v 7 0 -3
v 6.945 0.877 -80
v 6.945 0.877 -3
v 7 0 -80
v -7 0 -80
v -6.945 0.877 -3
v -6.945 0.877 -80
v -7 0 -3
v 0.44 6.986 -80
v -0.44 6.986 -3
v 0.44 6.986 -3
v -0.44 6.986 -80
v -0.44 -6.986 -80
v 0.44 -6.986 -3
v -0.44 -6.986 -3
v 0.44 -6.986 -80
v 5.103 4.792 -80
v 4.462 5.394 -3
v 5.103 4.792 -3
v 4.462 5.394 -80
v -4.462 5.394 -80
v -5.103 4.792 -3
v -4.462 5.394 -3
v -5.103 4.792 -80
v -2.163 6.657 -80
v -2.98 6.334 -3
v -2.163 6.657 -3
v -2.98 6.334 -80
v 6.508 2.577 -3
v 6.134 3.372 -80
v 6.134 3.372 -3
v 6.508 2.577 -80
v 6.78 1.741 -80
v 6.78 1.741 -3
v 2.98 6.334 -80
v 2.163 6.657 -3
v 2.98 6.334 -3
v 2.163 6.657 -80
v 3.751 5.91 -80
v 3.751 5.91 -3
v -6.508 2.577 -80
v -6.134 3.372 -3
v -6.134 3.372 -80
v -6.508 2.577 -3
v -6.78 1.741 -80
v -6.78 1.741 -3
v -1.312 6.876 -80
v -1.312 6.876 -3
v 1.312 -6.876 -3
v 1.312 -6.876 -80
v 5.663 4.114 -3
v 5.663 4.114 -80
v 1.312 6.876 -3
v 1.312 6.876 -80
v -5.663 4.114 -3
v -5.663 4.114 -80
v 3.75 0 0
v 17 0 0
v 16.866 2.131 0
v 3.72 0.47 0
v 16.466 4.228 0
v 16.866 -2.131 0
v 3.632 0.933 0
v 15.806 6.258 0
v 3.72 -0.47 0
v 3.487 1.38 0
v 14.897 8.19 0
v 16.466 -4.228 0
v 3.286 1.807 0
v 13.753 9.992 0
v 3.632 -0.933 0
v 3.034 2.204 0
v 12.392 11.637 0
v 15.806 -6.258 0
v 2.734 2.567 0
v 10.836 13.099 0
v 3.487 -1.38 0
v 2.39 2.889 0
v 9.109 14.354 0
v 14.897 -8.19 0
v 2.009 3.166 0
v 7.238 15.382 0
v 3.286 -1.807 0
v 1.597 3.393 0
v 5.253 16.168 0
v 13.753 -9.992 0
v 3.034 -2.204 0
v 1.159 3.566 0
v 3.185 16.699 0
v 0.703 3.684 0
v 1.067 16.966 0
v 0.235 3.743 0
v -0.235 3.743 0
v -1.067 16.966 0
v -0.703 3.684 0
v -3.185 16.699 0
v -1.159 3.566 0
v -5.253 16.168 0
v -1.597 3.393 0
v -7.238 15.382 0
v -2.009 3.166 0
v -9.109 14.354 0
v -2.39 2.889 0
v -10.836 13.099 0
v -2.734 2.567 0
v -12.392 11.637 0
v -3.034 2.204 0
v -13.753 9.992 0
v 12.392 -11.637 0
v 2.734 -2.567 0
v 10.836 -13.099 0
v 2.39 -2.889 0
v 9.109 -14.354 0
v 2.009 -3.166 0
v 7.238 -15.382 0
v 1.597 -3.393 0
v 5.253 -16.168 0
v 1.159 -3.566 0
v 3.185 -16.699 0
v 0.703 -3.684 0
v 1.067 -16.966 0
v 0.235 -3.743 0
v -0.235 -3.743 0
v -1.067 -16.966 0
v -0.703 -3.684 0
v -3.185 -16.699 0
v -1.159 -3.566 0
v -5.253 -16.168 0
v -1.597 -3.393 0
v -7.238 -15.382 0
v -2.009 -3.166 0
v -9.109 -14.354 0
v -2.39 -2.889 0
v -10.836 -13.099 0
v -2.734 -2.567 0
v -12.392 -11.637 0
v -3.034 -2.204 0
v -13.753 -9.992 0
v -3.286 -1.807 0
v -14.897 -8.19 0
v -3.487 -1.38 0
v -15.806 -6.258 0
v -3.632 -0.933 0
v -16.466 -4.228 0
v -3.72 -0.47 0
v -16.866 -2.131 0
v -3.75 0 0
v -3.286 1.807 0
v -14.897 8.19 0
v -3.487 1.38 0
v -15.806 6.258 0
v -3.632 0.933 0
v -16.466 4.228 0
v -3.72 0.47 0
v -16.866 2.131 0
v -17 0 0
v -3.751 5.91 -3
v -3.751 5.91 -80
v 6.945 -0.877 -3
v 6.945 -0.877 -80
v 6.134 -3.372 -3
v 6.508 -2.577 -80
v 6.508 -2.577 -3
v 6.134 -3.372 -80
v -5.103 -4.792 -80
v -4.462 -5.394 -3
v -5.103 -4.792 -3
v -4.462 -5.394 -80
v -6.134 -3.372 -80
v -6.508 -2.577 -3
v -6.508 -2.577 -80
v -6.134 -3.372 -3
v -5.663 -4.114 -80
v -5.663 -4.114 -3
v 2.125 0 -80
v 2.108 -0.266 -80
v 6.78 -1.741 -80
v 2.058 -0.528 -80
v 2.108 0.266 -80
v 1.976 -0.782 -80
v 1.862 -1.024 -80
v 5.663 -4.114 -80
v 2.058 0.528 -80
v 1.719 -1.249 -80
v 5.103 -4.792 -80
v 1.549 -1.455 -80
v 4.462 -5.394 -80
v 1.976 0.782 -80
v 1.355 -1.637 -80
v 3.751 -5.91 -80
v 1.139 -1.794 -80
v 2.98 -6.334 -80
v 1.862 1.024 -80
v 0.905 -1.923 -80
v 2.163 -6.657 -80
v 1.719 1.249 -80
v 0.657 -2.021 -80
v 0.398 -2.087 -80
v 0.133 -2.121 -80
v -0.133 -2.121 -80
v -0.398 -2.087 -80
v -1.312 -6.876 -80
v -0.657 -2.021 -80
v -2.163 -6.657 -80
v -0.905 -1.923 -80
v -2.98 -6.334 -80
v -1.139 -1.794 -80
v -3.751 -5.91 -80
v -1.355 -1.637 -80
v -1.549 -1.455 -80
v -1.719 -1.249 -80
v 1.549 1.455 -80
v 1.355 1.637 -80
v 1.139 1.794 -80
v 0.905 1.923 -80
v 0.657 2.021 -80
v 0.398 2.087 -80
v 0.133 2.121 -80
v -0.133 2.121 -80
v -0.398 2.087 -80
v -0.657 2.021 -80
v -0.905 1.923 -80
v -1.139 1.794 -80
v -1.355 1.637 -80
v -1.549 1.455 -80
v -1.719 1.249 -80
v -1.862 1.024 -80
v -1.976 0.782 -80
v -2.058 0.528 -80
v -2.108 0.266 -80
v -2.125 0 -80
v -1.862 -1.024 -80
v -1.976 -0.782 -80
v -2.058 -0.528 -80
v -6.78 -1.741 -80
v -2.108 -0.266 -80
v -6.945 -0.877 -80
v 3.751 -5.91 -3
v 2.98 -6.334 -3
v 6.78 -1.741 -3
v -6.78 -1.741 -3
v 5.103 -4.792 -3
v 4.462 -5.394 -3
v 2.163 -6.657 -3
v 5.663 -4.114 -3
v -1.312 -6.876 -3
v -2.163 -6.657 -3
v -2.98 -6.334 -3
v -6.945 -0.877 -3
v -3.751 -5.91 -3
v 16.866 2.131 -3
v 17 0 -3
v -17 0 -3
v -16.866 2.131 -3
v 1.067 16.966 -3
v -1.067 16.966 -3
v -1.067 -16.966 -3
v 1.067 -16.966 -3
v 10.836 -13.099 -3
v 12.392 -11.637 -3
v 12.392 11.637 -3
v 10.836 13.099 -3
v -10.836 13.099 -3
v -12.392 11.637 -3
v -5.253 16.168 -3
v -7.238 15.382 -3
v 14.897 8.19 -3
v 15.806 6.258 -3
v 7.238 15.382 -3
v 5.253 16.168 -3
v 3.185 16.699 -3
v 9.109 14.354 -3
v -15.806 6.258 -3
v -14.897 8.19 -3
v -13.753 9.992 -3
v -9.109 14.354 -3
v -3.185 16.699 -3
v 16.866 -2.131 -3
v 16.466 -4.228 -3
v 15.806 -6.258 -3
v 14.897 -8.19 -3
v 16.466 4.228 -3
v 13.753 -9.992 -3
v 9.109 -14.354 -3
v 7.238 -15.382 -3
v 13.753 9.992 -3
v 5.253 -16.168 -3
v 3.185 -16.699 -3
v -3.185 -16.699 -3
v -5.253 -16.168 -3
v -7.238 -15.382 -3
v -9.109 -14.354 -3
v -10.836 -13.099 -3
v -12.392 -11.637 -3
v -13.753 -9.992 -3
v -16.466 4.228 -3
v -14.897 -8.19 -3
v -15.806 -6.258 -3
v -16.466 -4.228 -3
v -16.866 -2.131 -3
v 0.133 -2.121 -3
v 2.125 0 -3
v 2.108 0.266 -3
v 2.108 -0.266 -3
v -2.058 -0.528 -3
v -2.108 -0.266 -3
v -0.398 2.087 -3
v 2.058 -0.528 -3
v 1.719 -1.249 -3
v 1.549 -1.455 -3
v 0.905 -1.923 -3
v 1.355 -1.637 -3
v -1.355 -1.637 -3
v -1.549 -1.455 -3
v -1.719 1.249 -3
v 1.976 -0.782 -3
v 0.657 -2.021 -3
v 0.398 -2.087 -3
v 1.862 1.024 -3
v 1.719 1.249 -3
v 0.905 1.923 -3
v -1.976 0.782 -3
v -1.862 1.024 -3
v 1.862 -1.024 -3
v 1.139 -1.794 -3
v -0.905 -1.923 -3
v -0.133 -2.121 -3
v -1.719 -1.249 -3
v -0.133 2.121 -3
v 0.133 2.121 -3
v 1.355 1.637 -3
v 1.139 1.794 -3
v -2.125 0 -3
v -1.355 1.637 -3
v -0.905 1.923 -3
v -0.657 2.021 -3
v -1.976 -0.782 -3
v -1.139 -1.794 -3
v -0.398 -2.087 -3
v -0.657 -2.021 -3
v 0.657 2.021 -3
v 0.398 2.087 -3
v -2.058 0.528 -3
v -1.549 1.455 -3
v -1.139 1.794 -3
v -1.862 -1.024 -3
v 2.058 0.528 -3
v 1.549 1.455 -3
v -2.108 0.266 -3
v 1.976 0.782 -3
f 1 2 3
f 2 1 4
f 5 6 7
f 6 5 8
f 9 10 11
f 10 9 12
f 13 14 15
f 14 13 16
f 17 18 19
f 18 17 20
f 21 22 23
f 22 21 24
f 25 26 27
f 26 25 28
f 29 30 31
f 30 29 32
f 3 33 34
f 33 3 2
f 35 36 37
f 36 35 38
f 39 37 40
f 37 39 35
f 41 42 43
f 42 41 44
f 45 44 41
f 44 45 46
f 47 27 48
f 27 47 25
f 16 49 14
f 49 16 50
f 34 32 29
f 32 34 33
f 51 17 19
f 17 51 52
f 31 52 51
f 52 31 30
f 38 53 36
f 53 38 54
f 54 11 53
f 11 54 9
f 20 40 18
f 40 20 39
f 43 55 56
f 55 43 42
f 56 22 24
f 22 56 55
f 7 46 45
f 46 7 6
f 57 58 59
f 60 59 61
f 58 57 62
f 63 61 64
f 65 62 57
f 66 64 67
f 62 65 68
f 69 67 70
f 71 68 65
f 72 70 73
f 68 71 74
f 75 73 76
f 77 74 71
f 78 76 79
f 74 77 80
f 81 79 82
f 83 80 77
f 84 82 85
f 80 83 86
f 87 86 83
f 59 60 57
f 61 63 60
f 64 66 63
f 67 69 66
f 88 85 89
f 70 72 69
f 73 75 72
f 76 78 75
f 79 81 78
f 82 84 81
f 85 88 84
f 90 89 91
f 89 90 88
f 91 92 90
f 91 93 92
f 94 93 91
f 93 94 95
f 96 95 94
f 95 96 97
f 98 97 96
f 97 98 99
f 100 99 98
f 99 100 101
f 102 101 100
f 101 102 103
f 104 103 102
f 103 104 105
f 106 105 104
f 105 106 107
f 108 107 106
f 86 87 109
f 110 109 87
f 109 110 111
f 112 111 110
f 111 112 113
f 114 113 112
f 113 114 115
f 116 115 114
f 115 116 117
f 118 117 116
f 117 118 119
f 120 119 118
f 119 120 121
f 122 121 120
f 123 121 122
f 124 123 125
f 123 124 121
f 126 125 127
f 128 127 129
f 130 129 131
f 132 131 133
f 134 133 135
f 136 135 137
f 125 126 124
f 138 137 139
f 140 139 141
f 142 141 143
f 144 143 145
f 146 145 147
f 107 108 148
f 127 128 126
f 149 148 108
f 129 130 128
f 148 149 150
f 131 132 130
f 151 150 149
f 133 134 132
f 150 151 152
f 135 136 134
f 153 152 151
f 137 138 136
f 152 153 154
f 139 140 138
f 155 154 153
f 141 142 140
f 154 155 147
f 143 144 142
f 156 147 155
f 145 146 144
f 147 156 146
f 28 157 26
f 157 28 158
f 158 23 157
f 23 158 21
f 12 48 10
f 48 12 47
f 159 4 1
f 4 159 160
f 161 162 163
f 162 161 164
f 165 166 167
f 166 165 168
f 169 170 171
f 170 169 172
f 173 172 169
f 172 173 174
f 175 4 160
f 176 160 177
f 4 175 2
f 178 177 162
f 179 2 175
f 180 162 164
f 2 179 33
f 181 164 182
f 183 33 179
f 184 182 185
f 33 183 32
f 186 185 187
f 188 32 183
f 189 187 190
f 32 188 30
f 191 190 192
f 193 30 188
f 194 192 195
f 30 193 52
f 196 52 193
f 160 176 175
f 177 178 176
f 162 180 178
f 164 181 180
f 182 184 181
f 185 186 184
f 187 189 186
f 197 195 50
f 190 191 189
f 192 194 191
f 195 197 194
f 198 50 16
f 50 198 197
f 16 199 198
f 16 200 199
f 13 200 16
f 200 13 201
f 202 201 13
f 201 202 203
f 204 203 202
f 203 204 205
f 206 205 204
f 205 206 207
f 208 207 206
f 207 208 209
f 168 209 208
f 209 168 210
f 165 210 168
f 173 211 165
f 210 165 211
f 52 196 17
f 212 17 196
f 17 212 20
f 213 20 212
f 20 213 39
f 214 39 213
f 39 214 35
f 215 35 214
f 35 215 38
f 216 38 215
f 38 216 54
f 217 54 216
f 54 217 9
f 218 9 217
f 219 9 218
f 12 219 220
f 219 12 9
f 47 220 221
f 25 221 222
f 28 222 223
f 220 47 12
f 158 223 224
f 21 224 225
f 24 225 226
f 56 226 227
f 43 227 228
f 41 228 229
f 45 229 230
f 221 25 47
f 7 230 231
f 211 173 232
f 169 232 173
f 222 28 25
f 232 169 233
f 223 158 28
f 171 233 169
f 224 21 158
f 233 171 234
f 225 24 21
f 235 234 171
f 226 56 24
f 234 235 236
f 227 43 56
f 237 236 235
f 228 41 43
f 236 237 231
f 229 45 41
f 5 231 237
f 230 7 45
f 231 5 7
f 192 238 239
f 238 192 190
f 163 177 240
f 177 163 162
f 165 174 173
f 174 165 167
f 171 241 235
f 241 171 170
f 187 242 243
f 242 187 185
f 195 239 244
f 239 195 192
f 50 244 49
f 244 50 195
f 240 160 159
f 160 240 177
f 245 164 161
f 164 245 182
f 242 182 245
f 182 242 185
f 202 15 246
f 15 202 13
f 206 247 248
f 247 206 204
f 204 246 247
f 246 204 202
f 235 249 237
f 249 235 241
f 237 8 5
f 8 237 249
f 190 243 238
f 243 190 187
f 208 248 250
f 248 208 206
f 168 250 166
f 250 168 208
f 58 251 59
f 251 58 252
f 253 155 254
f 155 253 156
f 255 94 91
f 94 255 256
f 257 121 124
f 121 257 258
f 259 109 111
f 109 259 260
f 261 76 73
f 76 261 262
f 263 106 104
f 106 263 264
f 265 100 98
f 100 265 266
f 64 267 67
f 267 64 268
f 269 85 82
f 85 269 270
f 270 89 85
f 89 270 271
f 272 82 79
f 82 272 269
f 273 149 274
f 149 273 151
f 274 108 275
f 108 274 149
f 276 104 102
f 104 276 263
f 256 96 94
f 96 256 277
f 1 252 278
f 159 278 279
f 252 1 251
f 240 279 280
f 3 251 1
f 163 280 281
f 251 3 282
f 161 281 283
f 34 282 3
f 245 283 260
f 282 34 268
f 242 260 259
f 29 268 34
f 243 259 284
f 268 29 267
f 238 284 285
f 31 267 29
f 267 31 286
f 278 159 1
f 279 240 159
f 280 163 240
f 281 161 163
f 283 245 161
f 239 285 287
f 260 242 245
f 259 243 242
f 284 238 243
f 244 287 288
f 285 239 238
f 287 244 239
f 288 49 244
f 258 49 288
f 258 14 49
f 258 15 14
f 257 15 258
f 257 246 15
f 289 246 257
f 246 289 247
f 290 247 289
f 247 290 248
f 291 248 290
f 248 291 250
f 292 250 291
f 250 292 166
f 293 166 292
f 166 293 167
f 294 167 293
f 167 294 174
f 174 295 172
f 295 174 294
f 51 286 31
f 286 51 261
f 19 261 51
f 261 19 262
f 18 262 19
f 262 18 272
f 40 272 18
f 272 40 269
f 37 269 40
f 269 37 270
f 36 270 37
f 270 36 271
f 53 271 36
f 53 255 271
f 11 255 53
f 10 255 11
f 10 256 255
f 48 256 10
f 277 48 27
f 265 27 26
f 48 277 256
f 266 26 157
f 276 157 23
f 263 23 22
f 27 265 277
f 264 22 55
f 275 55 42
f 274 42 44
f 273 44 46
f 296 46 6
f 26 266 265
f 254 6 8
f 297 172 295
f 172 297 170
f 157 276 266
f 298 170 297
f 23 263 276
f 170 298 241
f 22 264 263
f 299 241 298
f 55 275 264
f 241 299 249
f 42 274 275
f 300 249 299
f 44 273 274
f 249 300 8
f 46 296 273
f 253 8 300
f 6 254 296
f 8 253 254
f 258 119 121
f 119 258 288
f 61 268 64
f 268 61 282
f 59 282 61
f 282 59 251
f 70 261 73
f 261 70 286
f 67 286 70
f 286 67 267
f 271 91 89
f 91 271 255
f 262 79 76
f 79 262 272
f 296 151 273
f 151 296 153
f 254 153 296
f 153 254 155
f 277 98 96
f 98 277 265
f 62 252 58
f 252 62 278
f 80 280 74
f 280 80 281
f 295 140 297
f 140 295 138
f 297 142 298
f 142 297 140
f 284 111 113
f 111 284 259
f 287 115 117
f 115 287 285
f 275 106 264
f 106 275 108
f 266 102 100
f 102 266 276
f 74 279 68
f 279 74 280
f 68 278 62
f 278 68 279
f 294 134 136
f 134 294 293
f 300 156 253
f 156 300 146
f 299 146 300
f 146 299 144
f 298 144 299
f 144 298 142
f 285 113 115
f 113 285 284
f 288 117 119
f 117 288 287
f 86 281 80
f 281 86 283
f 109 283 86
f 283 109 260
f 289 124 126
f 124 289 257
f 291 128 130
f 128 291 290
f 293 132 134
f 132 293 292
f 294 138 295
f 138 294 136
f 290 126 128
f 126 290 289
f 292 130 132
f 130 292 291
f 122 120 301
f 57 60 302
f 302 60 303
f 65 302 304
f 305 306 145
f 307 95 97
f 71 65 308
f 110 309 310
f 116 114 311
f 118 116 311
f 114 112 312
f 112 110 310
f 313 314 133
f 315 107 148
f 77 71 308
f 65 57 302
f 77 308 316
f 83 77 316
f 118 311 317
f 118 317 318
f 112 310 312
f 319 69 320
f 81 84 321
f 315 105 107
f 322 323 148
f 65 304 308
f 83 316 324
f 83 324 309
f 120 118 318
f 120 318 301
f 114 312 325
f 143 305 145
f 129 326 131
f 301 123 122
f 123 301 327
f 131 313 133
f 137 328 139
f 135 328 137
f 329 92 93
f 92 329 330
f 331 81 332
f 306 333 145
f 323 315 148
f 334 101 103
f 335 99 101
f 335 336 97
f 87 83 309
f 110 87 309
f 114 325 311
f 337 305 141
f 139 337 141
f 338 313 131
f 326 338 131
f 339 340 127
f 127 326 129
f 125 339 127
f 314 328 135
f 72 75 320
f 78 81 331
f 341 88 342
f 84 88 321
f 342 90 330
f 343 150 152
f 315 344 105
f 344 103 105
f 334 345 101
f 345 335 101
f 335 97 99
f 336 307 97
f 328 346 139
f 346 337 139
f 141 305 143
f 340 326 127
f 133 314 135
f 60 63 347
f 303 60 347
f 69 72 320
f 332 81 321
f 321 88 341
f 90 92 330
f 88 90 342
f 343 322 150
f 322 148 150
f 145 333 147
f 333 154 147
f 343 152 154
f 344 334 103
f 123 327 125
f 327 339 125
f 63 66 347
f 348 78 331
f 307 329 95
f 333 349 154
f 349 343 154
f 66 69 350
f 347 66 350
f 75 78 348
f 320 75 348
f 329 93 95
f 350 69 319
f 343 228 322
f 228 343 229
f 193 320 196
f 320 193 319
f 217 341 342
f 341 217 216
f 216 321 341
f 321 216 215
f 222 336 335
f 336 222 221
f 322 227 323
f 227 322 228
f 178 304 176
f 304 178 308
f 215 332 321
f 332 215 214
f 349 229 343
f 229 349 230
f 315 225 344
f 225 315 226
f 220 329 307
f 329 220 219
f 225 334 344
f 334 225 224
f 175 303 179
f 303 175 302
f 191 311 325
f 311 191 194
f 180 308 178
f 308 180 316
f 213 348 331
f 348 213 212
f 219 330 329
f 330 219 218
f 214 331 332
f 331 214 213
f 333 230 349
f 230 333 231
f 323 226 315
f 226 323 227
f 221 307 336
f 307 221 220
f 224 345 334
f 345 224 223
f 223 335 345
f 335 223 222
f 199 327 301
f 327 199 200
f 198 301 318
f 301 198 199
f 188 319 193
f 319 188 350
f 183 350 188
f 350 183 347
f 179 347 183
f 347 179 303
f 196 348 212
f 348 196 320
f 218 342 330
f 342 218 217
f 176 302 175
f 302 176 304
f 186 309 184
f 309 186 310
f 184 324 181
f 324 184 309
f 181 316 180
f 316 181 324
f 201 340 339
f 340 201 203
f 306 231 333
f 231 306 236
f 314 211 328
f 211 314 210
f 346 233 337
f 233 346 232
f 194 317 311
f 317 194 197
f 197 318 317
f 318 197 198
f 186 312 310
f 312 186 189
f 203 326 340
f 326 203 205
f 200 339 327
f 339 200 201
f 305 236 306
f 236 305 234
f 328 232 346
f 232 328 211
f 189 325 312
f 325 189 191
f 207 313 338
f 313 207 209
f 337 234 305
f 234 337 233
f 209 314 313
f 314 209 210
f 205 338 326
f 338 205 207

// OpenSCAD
$fn = 50;


difference() {
	union() {
		translate(v = [0, 0, -80.0000000000]) {
			cylinder(h = 80, r = 7.0000000000);
		}
		translate(v = [0, 0, -3.0000000000]) {
			cylinder(h = 3, r = 17.0000000000);
		}
	}
	union() {
		translate(v = [0, 0, 0]) {
			rotate(a = [0, 0, 0]) {
				difference() {
					union() {
						#translate(v = [0, 0, -80.0000000000]) {
							cylinder(h = 80, r = 2.0000000000);
						}
						#translate(v = [0, 0, -3]) {
							cylinder(h = 3, r = 7.0000000000, r1 = 2.1250000000, r2 = 3.7500000000);
						}
						#translate(v = [0, 0, -80.0000000000]) {
							cylinder(h = 80, r = 2.1250000000);
						}
						#translate(v = [0, 0, -80.0000000000]) {
							cylinder(h = 80, r = 2.0000000000);
						}
					}
					union();
				}
			}
		}
	}
}
